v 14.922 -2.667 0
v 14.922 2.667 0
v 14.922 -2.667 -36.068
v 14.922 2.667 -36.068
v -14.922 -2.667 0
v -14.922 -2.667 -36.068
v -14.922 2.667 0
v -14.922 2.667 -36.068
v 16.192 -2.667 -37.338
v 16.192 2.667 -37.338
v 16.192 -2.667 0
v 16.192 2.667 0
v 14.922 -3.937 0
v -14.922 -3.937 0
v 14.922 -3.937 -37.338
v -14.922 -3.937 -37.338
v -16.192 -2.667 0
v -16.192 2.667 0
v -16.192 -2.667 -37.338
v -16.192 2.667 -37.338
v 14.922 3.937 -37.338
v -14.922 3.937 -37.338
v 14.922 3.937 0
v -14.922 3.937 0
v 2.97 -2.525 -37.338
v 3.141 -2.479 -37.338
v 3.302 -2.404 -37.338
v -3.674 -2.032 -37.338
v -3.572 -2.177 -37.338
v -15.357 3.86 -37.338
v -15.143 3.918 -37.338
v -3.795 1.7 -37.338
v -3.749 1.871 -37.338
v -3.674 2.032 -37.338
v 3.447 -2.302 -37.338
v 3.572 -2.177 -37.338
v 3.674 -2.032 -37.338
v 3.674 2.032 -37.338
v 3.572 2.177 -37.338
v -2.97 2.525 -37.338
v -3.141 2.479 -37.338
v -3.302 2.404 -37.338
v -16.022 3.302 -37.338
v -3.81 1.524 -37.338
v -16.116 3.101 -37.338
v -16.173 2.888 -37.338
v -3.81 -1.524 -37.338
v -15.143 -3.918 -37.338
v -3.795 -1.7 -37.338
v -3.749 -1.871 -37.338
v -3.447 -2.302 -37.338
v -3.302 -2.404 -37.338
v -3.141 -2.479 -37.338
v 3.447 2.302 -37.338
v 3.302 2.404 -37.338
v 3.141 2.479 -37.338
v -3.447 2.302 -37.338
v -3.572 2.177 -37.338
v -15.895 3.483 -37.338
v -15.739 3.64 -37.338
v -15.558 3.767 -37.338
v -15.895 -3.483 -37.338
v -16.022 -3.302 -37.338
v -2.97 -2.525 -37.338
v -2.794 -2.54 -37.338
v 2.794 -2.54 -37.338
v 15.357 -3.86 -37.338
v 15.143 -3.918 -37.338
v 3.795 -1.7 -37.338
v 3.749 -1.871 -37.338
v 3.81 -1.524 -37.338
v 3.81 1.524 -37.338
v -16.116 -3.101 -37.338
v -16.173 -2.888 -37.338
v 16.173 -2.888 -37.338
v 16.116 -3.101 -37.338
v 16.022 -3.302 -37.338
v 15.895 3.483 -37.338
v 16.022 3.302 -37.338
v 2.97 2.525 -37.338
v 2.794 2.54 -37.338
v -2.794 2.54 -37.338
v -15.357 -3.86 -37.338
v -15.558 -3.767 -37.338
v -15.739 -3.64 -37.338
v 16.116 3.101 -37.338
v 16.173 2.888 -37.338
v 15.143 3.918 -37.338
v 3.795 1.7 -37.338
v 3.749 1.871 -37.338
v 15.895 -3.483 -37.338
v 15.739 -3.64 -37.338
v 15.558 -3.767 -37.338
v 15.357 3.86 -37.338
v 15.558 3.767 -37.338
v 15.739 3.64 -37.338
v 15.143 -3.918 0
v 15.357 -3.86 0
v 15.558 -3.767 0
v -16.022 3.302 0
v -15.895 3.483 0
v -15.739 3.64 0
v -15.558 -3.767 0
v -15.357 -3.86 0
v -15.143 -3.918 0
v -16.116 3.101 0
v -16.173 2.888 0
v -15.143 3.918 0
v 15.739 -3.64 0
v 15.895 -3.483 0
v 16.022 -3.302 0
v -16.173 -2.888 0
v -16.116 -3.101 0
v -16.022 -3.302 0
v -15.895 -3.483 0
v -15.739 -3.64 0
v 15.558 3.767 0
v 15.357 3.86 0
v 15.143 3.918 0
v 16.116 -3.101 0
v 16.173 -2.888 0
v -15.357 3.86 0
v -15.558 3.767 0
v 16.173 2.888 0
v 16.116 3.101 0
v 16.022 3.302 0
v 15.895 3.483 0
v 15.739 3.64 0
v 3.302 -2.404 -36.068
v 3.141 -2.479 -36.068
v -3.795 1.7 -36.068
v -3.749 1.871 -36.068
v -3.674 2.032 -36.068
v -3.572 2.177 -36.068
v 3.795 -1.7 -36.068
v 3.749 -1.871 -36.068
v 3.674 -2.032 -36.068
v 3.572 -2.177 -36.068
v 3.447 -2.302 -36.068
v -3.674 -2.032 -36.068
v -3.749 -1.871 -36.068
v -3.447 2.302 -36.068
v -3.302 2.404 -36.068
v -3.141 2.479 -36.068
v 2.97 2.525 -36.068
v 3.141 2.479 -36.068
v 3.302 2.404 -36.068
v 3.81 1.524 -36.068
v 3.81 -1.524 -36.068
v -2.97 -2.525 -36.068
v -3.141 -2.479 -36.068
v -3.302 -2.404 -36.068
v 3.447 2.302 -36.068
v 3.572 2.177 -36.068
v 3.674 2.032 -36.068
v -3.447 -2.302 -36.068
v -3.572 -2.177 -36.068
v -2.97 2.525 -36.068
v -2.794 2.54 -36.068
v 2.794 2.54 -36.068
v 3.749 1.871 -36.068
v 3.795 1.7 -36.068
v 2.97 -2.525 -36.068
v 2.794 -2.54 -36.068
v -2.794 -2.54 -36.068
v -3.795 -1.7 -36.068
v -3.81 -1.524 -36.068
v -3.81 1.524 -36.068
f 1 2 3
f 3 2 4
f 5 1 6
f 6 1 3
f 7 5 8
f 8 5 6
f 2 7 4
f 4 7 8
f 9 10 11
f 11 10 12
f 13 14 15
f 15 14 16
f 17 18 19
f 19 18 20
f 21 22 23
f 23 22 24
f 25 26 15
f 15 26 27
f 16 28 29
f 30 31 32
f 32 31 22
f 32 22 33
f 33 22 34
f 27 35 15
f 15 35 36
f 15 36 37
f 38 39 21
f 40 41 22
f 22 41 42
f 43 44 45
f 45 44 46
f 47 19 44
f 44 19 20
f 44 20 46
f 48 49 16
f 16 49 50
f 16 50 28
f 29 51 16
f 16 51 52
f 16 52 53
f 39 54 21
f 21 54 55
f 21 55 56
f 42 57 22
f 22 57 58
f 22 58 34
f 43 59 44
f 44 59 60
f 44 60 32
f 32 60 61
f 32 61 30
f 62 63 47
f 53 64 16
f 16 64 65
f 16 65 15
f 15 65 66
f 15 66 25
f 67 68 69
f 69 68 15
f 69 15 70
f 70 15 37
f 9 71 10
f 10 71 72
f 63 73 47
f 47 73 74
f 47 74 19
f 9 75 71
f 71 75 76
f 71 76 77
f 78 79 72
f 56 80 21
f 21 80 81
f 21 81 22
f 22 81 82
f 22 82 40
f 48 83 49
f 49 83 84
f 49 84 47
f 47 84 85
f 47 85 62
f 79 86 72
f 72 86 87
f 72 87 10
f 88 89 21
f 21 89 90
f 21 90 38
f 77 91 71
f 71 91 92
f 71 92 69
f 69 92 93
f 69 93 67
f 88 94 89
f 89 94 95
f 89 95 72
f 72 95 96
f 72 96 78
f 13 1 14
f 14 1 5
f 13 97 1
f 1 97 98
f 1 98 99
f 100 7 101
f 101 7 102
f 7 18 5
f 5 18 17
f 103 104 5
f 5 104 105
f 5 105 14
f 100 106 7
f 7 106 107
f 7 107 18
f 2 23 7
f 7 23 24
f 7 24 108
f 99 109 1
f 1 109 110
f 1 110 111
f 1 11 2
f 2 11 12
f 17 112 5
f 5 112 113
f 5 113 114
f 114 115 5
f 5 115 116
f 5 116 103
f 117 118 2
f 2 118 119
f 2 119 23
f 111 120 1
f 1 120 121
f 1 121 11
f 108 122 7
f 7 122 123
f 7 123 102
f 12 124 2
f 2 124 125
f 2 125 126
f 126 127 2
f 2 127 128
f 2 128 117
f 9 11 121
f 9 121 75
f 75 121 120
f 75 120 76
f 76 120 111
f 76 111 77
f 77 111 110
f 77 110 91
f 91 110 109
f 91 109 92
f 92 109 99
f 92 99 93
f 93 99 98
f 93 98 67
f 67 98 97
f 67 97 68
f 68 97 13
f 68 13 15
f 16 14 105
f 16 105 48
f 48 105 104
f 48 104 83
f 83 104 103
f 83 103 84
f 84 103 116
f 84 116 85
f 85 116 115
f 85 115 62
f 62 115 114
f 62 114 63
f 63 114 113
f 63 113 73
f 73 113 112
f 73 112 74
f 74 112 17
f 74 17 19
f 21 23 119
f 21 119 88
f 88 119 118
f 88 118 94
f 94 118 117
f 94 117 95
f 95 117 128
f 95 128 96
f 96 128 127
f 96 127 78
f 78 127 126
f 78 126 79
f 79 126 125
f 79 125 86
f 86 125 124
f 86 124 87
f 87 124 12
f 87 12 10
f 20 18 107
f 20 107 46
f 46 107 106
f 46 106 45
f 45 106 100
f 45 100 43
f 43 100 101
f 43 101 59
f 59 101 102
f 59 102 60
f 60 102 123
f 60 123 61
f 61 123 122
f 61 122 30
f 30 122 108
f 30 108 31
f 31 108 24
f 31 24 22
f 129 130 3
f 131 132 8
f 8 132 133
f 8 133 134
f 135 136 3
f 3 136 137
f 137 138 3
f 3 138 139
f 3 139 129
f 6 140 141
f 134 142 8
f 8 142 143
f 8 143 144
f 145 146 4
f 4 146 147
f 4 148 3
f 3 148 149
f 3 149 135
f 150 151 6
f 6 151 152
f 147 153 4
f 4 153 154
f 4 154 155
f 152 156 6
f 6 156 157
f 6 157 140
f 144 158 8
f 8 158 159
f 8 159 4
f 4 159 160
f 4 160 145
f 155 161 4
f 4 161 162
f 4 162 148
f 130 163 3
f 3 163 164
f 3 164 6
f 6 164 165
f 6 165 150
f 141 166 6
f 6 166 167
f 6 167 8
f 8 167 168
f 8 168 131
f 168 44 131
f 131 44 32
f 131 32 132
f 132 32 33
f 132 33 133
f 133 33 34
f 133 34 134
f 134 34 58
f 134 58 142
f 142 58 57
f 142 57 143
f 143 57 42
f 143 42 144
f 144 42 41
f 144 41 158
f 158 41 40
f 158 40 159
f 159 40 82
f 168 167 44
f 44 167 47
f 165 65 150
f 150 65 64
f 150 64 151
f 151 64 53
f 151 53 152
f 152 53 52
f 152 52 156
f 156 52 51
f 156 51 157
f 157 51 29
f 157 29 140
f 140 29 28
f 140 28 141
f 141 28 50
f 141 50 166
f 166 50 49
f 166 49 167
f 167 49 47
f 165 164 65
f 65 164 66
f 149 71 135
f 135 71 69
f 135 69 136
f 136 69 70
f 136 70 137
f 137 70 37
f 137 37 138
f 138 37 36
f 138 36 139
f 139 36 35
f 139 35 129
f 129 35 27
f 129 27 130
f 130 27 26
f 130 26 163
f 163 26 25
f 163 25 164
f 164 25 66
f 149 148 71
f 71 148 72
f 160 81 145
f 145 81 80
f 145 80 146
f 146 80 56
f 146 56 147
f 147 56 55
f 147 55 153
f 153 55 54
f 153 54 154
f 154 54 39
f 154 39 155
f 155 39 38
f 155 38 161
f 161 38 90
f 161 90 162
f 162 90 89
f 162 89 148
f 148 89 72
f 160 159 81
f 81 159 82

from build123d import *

# Parameters (mm, degrees)
SKETCH1_W           = 32.385
SKETCH1_H           = 7.874
SKETCH1_W_2         = 29.845
SKETCH1_H_2         = 5.334
BOSS_EXTRUDE1_DEPTH = 37.338
FILLET1_R           = 1.27
SKETCH2_W           = 29.845
SKETCH2_H           = 5.334
BOSS_EXTRUDE2_DEPTH = 1.27


with BuildPart() as part:
    # Sketch1 → Boss-Extrude1 (new body)
    with BuildSketch(Plane.XY):
        Rectangle(SKETCH1_W, SKETCH1_H)
        Rectangle(SKETCH1_W_2, SKETCH1_H_2, mode=Mode.SUBTRACT)
    extrude(amount=-BOSS_EXTRUDE1_DEPTH)

    # Fillet1
    fillet1_edges = [part.edges().sort_by_distance(p)[0] for p in [
        (16.1925, -3.937, -18.669),
        (-16.1925, -3.937, -18.669),
        (-16.1925, 3.937, -18.669),
        (16.1925, 3.937, -18.669),
    ]]
    fillet(fillet1_edges, radius=FILLET1_R)

    # Sketch2 → Boss-Extrude2 (add)
    with BuildSketch(Plane(origin=(0, 0, -37.338), x_dir=(-1, 0, 0), z_dir=(0, 0, -1))):
        Rectangle(SKETCH2_W, SKETCH2_H)
        with BuildLine():
            Line((-2.794, 2.54), (2.794, 2.54))
            ThreePointArc((2.794, 2.54), (3.51242049, 2.24242049), (3.81, 1.524))
            Line((3.81, 1.524), (3.81, -1.524))
            ThreePointArc((3.81, -1.524), (3.51242049, -2.24242049), (2.794, -2.54))
            Line((2.794, -2.54), (-2.794, -2.54))
            ThreePointArc((-2.794, -2.54), (-3.51242049, -2.24242049), (-3.81, -1.524))
            Line((-3.81, -1.524), (-3.81, 1.524))
            ThreePointArc((-3.81, 1.524), (-3.51242049, 2.24242049), (-2.794, 2.54))
        make_face(mode=Mode.SUBTRACT)
    extrude(amount=-BOSS_EXTRUDE2_DEPTH)


solid = part.part
